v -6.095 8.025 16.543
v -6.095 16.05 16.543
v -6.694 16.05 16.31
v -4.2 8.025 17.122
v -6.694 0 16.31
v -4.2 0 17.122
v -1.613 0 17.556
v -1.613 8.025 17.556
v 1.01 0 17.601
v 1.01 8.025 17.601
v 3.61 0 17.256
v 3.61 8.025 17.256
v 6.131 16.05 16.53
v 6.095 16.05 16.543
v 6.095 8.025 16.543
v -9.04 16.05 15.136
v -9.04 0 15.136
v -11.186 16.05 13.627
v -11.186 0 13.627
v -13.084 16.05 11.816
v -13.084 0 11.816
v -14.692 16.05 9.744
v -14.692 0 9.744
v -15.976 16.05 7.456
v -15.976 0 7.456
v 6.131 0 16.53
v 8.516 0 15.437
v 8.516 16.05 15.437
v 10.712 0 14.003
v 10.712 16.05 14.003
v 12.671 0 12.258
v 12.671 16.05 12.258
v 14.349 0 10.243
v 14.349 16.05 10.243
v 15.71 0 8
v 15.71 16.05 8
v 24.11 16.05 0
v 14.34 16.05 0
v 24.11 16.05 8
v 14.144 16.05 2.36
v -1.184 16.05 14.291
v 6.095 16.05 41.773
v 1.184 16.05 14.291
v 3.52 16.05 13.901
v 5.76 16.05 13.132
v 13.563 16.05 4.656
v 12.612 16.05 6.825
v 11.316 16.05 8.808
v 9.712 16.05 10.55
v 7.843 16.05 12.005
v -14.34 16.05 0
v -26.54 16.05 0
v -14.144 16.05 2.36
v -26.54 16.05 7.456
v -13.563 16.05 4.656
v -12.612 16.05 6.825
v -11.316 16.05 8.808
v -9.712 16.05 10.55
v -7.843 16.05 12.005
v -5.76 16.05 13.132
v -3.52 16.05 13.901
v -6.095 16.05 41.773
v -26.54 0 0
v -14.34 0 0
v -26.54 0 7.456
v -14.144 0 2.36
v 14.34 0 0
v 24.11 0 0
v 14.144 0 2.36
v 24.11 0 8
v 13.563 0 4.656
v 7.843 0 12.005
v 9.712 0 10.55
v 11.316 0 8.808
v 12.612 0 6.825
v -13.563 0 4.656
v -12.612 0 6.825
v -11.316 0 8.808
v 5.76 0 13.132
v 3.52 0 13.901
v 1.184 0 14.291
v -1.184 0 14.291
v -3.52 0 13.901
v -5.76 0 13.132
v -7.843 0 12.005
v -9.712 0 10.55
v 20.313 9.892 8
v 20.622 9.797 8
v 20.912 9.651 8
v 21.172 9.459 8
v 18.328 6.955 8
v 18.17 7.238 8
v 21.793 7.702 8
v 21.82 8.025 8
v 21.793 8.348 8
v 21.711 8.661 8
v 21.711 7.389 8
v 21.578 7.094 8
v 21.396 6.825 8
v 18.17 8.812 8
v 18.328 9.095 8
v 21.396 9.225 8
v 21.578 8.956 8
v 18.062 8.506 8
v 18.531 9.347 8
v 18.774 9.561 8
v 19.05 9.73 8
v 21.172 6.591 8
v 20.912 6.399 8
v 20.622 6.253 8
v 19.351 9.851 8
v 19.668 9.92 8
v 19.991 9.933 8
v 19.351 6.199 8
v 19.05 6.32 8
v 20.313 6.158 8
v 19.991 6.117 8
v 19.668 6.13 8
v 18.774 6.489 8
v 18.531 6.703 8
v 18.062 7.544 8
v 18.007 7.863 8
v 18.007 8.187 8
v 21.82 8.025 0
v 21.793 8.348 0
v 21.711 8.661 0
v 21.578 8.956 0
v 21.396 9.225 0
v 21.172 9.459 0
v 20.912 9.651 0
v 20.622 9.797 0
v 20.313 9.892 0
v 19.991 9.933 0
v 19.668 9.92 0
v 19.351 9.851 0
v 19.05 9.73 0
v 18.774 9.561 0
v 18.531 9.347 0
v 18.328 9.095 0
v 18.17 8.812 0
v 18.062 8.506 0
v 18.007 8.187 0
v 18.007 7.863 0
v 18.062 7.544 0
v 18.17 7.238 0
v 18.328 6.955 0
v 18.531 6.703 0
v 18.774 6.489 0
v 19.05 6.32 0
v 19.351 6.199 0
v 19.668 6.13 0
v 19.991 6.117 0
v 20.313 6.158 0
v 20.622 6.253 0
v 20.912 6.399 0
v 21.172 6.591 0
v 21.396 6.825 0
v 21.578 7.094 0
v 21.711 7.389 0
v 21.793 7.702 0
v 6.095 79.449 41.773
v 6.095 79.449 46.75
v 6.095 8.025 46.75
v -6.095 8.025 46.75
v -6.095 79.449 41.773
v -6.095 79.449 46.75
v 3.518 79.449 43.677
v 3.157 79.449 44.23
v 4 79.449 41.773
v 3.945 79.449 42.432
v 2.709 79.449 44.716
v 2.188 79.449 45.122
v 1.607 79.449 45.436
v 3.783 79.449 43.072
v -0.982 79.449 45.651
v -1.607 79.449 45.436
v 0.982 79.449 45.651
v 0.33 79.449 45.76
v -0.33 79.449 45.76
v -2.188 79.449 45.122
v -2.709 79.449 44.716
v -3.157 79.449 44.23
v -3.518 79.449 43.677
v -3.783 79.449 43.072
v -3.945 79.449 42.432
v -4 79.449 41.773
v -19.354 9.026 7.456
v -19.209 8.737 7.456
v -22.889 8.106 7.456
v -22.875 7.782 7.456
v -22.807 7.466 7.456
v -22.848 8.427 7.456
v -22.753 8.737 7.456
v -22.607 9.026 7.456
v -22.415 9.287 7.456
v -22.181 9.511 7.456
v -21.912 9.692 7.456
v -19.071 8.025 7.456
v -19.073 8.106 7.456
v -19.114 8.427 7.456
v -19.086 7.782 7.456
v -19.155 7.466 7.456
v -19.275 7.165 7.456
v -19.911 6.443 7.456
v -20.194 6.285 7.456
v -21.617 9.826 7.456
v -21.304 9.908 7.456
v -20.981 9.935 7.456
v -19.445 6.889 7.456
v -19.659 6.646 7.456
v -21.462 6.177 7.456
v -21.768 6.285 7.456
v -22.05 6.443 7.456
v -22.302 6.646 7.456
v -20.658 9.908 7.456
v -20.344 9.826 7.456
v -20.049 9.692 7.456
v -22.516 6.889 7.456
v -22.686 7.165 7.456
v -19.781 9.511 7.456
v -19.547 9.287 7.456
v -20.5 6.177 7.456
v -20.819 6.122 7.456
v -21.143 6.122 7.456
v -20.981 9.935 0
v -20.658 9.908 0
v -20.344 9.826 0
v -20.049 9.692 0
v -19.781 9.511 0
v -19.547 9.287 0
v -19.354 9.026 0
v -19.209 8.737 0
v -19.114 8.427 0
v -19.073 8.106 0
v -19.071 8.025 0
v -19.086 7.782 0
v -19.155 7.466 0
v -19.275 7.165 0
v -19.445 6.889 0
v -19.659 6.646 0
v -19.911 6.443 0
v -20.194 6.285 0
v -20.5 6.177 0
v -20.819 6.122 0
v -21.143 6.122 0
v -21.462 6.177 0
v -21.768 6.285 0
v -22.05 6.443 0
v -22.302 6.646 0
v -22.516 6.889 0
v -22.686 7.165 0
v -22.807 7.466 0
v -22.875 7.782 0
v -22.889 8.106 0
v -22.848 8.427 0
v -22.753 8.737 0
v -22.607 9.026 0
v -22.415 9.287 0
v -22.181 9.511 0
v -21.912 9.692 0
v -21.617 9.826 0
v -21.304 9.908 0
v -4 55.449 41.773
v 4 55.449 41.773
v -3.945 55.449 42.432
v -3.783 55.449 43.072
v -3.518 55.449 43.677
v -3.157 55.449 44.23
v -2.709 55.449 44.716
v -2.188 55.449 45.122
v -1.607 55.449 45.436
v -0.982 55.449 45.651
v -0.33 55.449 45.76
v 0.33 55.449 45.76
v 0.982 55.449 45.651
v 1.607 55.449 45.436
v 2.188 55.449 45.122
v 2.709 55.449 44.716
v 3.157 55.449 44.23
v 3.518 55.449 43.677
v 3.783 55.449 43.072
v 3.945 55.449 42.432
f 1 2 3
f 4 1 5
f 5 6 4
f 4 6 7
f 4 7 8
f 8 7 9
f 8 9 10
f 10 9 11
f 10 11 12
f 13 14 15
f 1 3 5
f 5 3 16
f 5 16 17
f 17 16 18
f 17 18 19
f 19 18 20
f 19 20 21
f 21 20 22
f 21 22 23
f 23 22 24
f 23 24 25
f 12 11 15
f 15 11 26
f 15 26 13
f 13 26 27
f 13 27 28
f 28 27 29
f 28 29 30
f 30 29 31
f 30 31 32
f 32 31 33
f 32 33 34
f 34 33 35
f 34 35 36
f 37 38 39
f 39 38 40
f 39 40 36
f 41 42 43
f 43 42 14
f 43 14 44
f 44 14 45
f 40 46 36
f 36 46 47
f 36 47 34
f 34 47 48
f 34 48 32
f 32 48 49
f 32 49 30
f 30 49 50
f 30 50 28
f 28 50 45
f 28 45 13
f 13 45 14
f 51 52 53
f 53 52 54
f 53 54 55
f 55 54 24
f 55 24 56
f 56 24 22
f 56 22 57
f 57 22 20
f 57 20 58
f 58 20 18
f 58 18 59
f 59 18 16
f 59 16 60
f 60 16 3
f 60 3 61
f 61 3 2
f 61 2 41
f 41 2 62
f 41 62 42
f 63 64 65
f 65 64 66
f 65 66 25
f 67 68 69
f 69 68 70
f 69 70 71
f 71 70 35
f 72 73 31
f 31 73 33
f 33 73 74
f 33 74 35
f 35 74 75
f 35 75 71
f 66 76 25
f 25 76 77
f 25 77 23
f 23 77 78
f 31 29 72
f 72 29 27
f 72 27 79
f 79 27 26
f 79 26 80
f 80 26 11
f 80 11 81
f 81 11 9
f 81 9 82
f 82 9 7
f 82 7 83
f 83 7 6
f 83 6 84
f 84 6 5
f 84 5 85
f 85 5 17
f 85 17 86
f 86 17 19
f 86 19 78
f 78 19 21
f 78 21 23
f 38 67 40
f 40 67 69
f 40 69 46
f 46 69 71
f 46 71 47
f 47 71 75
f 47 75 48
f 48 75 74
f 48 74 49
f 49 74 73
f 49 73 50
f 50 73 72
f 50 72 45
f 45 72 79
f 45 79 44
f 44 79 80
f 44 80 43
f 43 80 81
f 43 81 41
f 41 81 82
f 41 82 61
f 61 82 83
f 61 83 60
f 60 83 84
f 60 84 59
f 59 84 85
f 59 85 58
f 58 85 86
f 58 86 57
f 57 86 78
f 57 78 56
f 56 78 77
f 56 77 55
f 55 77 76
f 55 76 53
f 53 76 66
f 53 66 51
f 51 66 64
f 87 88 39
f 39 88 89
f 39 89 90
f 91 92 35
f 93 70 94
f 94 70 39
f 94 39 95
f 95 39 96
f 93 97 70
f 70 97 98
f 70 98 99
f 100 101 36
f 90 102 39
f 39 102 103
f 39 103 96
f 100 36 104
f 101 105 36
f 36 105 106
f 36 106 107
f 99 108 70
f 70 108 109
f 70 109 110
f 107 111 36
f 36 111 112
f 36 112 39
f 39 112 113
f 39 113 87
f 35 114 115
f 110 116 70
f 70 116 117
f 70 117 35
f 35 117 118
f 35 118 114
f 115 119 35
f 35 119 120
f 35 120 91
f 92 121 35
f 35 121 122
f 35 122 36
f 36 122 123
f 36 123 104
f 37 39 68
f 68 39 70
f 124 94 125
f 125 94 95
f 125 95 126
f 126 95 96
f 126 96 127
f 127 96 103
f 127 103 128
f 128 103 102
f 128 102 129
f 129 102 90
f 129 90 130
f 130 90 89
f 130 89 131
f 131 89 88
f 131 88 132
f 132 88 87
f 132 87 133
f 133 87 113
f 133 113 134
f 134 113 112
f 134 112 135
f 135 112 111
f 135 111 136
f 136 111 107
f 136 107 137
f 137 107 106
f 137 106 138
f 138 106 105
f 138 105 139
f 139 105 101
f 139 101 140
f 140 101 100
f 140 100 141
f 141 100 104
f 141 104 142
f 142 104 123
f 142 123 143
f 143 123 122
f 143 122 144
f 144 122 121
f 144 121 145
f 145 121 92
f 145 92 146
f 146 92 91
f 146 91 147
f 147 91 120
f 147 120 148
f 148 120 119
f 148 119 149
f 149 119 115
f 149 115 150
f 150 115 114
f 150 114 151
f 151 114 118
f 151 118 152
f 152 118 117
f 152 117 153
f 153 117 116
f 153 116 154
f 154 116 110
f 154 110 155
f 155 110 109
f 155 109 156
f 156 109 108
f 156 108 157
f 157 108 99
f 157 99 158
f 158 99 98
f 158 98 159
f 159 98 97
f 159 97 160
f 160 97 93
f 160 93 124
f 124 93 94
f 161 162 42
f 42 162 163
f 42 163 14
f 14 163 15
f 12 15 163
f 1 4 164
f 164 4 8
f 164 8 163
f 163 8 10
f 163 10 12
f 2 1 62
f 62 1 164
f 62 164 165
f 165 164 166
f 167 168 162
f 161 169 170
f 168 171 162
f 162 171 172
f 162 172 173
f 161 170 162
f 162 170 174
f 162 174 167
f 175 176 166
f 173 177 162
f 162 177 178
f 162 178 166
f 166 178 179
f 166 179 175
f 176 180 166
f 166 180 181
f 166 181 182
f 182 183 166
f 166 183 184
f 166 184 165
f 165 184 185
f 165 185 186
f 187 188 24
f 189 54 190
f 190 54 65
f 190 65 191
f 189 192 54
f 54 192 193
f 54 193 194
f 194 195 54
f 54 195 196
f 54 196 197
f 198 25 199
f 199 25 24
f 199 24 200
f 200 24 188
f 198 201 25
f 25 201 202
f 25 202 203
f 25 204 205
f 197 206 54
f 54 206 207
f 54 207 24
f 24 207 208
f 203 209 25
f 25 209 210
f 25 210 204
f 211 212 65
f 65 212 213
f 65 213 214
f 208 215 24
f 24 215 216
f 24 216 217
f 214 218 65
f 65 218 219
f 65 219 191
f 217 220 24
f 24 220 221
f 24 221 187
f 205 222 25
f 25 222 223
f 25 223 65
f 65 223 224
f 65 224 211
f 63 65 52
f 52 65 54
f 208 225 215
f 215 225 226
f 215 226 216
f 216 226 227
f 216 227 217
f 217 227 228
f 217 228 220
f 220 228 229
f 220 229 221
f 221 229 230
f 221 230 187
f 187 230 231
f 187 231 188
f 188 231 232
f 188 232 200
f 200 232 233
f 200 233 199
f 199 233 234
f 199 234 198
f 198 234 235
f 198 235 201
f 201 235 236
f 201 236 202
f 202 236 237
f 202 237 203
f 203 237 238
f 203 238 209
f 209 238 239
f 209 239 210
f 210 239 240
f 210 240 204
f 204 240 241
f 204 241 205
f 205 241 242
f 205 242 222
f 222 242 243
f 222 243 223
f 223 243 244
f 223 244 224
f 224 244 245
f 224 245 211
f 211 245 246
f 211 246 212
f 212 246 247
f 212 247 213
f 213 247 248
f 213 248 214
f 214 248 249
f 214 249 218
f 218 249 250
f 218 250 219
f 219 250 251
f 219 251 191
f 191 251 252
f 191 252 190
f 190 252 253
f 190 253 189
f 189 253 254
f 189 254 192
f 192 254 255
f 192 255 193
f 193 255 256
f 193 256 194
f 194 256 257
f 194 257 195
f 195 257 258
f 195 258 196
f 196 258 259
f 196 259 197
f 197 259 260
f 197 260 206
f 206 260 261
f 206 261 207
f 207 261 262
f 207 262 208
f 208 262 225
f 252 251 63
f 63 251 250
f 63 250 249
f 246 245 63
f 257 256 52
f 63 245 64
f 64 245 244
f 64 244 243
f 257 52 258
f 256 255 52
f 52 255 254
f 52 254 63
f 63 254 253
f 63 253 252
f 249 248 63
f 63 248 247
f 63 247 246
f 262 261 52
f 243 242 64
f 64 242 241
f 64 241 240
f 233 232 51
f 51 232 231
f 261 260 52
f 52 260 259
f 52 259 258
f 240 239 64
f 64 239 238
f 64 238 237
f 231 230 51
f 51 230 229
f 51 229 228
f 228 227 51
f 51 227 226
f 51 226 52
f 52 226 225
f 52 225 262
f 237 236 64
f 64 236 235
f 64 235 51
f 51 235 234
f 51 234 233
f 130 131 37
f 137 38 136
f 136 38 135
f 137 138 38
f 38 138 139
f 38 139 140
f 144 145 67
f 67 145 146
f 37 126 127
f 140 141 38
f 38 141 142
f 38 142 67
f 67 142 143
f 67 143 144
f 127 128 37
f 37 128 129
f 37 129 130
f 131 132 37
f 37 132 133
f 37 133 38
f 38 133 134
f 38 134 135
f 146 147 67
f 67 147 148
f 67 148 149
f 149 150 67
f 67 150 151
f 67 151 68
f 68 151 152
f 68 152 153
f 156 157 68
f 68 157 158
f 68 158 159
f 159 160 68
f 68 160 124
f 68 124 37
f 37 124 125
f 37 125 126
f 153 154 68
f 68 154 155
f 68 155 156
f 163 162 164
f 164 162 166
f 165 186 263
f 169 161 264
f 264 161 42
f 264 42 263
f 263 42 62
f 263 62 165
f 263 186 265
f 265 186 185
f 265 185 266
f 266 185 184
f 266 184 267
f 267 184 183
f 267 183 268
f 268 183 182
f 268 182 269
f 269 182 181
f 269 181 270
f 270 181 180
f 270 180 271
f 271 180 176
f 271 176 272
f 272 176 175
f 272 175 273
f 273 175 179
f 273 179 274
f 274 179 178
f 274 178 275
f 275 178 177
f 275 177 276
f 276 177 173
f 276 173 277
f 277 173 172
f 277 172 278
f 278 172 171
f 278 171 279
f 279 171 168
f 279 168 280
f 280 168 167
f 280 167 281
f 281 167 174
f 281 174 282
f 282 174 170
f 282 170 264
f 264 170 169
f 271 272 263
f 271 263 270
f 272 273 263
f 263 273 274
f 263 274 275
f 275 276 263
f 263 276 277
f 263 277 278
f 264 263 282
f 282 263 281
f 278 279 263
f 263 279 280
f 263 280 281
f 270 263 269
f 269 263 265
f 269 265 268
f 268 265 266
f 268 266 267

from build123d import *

# Parameters (mm, degrees)
SKETCH_1_R             = 17.63
SKETCH_1_R_2           = 14.34
EXTRUDE_1_DEPTH        = 16.05
EXTRUDE_1_2_DEPTH      = 9.77
EXTRUDE_1_2_DEPTH_BACK = 3
SKETCH_2_W             = 16
SKETCH_2_H             = 16.05
SKETCH_3_W             = 3.41
SKETCH_3_H             = 16
CUT_EXTRUDE_1_DEPTH    = 37.411121927
SKETCH_4_R             = 1.91
CUT_EXTRUDE_2_DEPTH    = 39.675463798
EXTRUDE_2_DEPTH        = 4
EXTRUDE_2_DEPTH_BACK   = 2.77
SKETCH_5_W             = 12.19
SKETCH_5_H             = 8.263625949
SKETCH_6_W             = 12.19
SKETCH_6_H             = 6.77
EXTRUDE_3_DEPTH        = 63
SKETCH_8_W             = 12.19
SKETCH_8_H             = 6.77
EXTRUDE_4_DEPTH        = 0.16
EXTRUDE_5_DEPTH        = 3.16
EXTRUDE_5_DEPTH_BACK   = 10
SKETCH_12_W            = 16
SKETCH_12_H            = 16.05
SKETCH_13_W            = 1.21
SKETCH_13_H            = 16
CUT_EXTRUDE_3_DEPTH    = 73.543164889
SKETCH_14_R            = 1.91
CUT_EXTRUDE_4_DEPTH    = 90.07387176
SKETCH_15_R            = 4.05
CUT_EXTRUDE_5_DEPTH    = 24
SKETCH_16_W            = 56.400519221
SKETCH_16_H            = 19.935010357
CUT_EXTRUDE_6_DEPTH    = 73.088971918
SKETCH_17_W            = 12.19
SKETCH_17_H            = 71.423625949
EXTRUDE_7_DEPTH        = 25
SKETCH_18_W            = 26.793372528
SKETCH_18_H            = 63.398625949
CUT_EXTRUDE_7_DEPTH    = 25
SKETCH_19_R            = 4
CUT_EXTRUDE_8_DEPTH    = 24


with BuildPart() as part:
    # 草圖1 → Extrude 1 (new body)
    with BuildSketch(Plane(origin=(0, 0, 0), x_dir=(1, 0, 0), z_dir=(0, 1, 0))):
        Circle(SKETCH_1_R)
        Circle(SKETCH_1_R_2, mode=Mode.SUBTRACT)
    extrude(amount=EXTRUDE_1_DEPTH)

    # 草圖2 → Extrude 1 2 (add, two sides: drawn at the far end of the back side and taken through both)
    with BuildSketch(Plane(origin=(17.75, 0, 0), x_dir=(0, 0, -1), z_dir=(1, 0, 0)).offset(-EXTRUDE_1_2_DEPTH_BACK)):
        with Locations((0, 8.025)):
            Rectangle(SKETCH_2_W, SKETCH_2_H)
    extrude(amount=EXTRUDE_1_2_DEPTH + EXTRUDE_1_2_DEPTH_BACK)

    # 草圖3 → 除料-伸長1 (cut, through all)
    with BuildSketch(Plane(origin=(0, 16.05, 0), x_dir=(1, 0, 0), z_dir=(0, 1, 0))):
        with Locations((25.815, 0)):
            Rectangle(SKETCH_3_W, SKETCH_3_H)
    extrude(amount=-CUT_EXTRUDE_1_DEPTH, mode=Mode.SUBTRACT)

    # 草圖4 → 除料-伸長2 (cut, through all)
    with BuildSketch(Plane.XY.offset(8)):
        with Locations((19.910203689, 8.025)):
            Circle(SKETCH_4_R)
    extrude(amount=-CUT_EXTRUDE_2_DEPTH, mode=Mode.SUBTRACT)

    # 草圖5 → 填料-伸長2 (add, two sides: drawn at the far end of the back side and taken through both)
    with BuildSketch(Plane.XY.offset(17.75).offset(-EXTRUDE_2_DEPTH_BACK)):
        with Locations((0, 12.156812974)):
            Rectangle(SKETCH_5_W, SKETCH_5_H)
    extrude(amount=EXTRUDE_2_DEPTH + EXTRUDE_2_DEPTH_BACK)

    # 草圖6 → 填料-伸長3 (add)
    with BuildSketch(Plane(origin=(0, 16.288625949, 0), x_dir=(1, 0, 0), z_dir=(0, 1, 0))):
        with Locations((0, -18.365)):
            Rectangle(SKETCH_6_W, SKETCH_6_H)
    extrude(amount=EXTRUDE_3_DEPTH)

    # 草圖8 → 填料-伸長4 (add)
    with BuildSketch(Plane(origin=(0, 79.288625949, 0), x_dir=(1, 0, 0), z_dir=(0, 1, 0))):
        with Locations((0, -18.365)):
            Rectangle(SKETCH_8_W, SKETCH_8_H)
    extrude(amount=EXTRUDE_4_DEPTH)

    # 草圖12 → 填料-伸長5 (add, two sides: drawn at the far end of the back side and taken through both)
    with BuildSketch(Plane(origin=(-17.75, 0, 0), x_dir=(0, 0, -1), z_dir=(1, 0, 0)).offset(-EXTRUDE_5_DEPTH_BACK)):
        with Locations((0.543544944, 8.025)):
            Rectangle(SKETCH_12_W, SKETCH_12_H)
    extrude(amount=EXTRUDE_5_DEPTH + EXTRUDE_5_DEPTH_BACK)

    # 草圖13 → 除料-伸長3 (cut, through all)
    with BuildSketch(Plane(origin=(0, 16.05, 0), x_dir=(1, 0, 0), z_dir=(0, 1, 0))):
        with Locations((-27.145, 0.543544944)):
            Rectangle(SKETCH_13_W, SKETCH_13_H)
    extrude(amount=-CUT_EXTRUDE_3_DEPTH, mode=Mode.SUBTRACT)

    # 草圖14 → 除料-伸長4 (cut, through all)
    with BuildSketch(Plane(origin=(0, 0, -8.543544944), x_dir=(-1, 0, 0), z_dir=(0, 0, -1))):
        with Locations(Location((20.980783679, 8.025, 0), (0, 0, 90))):
            Circle(SKETCH_14_R)
    extrude(amount=-CUT_EXTRUDE_4_DEPTH, mode=Mode.SUBTRACT)

    # 草圖15 → 除料-伸長5 (cut)
    with BuildSketch(Plane(origin=(0, 79.448625949, 0), x_dir=(1, 0, 0), z_dir=(0, 1, 0))):
        with Locations((0, -14.98)):
            Circle(SKETCH_15_R)
    extrude(amount=-CUT_EXTRUDE_5_DEPTH, mode=Mode.SUBTRACT)

    # 草圖16 → 除料-伸長6 (cut, through all)
    with BuildSketch(Plane(origin=(0, 16.05, 0), x_dir=(1, 0, 0), z_dir=(0, 1, 0))):
        with Locations((-4.090259611, 9.967505179)):
            Rectangle(SKETCH_16_W, SKETCH_16_H)
    extrude(amount=-CUT_EXTRUDE_6_DEPTH, mode=Mode.SUBTRACT)

    # 草圖17 → 填料-伸長7 (add)
    with BuildSketch(Plane.XY.offset(21.75)):
        with Locations((0, 43.736812975)):
            Rectangle(SKETCH_17_W, SKETCH_17_H)
    extrude(amount=EXTRUDE_7_DEPTH)

    # 草圖18 → 除料-伸長7 (cut)
    with BuildSketch(Plane.ZY.offset(6.095)):
        with Locations((28.376686264, 47.749312975)):
            Rectangle(SKETCH_18_W, SKETCH_18_H)
    extrude(amount=-CUT_EXTRUDE_7_DEPTH, mode=Mode.SUBTRACT)

    # 草圖19 → 除料-伸長8 (cut)
    with BuildSketch(Plane(origin=(0, 79.448625949, 0), x_dir=(1, 0, 0), z_dir=(0, 1, 0))):
        with Locations((0, -41.773372528)):
            Circle(SKETCH_19_R)
    extrude(amount=-CUT_EXTRUDE_8_DEPTH, mode=Mode.SUBTRACT)


solid = part.part
